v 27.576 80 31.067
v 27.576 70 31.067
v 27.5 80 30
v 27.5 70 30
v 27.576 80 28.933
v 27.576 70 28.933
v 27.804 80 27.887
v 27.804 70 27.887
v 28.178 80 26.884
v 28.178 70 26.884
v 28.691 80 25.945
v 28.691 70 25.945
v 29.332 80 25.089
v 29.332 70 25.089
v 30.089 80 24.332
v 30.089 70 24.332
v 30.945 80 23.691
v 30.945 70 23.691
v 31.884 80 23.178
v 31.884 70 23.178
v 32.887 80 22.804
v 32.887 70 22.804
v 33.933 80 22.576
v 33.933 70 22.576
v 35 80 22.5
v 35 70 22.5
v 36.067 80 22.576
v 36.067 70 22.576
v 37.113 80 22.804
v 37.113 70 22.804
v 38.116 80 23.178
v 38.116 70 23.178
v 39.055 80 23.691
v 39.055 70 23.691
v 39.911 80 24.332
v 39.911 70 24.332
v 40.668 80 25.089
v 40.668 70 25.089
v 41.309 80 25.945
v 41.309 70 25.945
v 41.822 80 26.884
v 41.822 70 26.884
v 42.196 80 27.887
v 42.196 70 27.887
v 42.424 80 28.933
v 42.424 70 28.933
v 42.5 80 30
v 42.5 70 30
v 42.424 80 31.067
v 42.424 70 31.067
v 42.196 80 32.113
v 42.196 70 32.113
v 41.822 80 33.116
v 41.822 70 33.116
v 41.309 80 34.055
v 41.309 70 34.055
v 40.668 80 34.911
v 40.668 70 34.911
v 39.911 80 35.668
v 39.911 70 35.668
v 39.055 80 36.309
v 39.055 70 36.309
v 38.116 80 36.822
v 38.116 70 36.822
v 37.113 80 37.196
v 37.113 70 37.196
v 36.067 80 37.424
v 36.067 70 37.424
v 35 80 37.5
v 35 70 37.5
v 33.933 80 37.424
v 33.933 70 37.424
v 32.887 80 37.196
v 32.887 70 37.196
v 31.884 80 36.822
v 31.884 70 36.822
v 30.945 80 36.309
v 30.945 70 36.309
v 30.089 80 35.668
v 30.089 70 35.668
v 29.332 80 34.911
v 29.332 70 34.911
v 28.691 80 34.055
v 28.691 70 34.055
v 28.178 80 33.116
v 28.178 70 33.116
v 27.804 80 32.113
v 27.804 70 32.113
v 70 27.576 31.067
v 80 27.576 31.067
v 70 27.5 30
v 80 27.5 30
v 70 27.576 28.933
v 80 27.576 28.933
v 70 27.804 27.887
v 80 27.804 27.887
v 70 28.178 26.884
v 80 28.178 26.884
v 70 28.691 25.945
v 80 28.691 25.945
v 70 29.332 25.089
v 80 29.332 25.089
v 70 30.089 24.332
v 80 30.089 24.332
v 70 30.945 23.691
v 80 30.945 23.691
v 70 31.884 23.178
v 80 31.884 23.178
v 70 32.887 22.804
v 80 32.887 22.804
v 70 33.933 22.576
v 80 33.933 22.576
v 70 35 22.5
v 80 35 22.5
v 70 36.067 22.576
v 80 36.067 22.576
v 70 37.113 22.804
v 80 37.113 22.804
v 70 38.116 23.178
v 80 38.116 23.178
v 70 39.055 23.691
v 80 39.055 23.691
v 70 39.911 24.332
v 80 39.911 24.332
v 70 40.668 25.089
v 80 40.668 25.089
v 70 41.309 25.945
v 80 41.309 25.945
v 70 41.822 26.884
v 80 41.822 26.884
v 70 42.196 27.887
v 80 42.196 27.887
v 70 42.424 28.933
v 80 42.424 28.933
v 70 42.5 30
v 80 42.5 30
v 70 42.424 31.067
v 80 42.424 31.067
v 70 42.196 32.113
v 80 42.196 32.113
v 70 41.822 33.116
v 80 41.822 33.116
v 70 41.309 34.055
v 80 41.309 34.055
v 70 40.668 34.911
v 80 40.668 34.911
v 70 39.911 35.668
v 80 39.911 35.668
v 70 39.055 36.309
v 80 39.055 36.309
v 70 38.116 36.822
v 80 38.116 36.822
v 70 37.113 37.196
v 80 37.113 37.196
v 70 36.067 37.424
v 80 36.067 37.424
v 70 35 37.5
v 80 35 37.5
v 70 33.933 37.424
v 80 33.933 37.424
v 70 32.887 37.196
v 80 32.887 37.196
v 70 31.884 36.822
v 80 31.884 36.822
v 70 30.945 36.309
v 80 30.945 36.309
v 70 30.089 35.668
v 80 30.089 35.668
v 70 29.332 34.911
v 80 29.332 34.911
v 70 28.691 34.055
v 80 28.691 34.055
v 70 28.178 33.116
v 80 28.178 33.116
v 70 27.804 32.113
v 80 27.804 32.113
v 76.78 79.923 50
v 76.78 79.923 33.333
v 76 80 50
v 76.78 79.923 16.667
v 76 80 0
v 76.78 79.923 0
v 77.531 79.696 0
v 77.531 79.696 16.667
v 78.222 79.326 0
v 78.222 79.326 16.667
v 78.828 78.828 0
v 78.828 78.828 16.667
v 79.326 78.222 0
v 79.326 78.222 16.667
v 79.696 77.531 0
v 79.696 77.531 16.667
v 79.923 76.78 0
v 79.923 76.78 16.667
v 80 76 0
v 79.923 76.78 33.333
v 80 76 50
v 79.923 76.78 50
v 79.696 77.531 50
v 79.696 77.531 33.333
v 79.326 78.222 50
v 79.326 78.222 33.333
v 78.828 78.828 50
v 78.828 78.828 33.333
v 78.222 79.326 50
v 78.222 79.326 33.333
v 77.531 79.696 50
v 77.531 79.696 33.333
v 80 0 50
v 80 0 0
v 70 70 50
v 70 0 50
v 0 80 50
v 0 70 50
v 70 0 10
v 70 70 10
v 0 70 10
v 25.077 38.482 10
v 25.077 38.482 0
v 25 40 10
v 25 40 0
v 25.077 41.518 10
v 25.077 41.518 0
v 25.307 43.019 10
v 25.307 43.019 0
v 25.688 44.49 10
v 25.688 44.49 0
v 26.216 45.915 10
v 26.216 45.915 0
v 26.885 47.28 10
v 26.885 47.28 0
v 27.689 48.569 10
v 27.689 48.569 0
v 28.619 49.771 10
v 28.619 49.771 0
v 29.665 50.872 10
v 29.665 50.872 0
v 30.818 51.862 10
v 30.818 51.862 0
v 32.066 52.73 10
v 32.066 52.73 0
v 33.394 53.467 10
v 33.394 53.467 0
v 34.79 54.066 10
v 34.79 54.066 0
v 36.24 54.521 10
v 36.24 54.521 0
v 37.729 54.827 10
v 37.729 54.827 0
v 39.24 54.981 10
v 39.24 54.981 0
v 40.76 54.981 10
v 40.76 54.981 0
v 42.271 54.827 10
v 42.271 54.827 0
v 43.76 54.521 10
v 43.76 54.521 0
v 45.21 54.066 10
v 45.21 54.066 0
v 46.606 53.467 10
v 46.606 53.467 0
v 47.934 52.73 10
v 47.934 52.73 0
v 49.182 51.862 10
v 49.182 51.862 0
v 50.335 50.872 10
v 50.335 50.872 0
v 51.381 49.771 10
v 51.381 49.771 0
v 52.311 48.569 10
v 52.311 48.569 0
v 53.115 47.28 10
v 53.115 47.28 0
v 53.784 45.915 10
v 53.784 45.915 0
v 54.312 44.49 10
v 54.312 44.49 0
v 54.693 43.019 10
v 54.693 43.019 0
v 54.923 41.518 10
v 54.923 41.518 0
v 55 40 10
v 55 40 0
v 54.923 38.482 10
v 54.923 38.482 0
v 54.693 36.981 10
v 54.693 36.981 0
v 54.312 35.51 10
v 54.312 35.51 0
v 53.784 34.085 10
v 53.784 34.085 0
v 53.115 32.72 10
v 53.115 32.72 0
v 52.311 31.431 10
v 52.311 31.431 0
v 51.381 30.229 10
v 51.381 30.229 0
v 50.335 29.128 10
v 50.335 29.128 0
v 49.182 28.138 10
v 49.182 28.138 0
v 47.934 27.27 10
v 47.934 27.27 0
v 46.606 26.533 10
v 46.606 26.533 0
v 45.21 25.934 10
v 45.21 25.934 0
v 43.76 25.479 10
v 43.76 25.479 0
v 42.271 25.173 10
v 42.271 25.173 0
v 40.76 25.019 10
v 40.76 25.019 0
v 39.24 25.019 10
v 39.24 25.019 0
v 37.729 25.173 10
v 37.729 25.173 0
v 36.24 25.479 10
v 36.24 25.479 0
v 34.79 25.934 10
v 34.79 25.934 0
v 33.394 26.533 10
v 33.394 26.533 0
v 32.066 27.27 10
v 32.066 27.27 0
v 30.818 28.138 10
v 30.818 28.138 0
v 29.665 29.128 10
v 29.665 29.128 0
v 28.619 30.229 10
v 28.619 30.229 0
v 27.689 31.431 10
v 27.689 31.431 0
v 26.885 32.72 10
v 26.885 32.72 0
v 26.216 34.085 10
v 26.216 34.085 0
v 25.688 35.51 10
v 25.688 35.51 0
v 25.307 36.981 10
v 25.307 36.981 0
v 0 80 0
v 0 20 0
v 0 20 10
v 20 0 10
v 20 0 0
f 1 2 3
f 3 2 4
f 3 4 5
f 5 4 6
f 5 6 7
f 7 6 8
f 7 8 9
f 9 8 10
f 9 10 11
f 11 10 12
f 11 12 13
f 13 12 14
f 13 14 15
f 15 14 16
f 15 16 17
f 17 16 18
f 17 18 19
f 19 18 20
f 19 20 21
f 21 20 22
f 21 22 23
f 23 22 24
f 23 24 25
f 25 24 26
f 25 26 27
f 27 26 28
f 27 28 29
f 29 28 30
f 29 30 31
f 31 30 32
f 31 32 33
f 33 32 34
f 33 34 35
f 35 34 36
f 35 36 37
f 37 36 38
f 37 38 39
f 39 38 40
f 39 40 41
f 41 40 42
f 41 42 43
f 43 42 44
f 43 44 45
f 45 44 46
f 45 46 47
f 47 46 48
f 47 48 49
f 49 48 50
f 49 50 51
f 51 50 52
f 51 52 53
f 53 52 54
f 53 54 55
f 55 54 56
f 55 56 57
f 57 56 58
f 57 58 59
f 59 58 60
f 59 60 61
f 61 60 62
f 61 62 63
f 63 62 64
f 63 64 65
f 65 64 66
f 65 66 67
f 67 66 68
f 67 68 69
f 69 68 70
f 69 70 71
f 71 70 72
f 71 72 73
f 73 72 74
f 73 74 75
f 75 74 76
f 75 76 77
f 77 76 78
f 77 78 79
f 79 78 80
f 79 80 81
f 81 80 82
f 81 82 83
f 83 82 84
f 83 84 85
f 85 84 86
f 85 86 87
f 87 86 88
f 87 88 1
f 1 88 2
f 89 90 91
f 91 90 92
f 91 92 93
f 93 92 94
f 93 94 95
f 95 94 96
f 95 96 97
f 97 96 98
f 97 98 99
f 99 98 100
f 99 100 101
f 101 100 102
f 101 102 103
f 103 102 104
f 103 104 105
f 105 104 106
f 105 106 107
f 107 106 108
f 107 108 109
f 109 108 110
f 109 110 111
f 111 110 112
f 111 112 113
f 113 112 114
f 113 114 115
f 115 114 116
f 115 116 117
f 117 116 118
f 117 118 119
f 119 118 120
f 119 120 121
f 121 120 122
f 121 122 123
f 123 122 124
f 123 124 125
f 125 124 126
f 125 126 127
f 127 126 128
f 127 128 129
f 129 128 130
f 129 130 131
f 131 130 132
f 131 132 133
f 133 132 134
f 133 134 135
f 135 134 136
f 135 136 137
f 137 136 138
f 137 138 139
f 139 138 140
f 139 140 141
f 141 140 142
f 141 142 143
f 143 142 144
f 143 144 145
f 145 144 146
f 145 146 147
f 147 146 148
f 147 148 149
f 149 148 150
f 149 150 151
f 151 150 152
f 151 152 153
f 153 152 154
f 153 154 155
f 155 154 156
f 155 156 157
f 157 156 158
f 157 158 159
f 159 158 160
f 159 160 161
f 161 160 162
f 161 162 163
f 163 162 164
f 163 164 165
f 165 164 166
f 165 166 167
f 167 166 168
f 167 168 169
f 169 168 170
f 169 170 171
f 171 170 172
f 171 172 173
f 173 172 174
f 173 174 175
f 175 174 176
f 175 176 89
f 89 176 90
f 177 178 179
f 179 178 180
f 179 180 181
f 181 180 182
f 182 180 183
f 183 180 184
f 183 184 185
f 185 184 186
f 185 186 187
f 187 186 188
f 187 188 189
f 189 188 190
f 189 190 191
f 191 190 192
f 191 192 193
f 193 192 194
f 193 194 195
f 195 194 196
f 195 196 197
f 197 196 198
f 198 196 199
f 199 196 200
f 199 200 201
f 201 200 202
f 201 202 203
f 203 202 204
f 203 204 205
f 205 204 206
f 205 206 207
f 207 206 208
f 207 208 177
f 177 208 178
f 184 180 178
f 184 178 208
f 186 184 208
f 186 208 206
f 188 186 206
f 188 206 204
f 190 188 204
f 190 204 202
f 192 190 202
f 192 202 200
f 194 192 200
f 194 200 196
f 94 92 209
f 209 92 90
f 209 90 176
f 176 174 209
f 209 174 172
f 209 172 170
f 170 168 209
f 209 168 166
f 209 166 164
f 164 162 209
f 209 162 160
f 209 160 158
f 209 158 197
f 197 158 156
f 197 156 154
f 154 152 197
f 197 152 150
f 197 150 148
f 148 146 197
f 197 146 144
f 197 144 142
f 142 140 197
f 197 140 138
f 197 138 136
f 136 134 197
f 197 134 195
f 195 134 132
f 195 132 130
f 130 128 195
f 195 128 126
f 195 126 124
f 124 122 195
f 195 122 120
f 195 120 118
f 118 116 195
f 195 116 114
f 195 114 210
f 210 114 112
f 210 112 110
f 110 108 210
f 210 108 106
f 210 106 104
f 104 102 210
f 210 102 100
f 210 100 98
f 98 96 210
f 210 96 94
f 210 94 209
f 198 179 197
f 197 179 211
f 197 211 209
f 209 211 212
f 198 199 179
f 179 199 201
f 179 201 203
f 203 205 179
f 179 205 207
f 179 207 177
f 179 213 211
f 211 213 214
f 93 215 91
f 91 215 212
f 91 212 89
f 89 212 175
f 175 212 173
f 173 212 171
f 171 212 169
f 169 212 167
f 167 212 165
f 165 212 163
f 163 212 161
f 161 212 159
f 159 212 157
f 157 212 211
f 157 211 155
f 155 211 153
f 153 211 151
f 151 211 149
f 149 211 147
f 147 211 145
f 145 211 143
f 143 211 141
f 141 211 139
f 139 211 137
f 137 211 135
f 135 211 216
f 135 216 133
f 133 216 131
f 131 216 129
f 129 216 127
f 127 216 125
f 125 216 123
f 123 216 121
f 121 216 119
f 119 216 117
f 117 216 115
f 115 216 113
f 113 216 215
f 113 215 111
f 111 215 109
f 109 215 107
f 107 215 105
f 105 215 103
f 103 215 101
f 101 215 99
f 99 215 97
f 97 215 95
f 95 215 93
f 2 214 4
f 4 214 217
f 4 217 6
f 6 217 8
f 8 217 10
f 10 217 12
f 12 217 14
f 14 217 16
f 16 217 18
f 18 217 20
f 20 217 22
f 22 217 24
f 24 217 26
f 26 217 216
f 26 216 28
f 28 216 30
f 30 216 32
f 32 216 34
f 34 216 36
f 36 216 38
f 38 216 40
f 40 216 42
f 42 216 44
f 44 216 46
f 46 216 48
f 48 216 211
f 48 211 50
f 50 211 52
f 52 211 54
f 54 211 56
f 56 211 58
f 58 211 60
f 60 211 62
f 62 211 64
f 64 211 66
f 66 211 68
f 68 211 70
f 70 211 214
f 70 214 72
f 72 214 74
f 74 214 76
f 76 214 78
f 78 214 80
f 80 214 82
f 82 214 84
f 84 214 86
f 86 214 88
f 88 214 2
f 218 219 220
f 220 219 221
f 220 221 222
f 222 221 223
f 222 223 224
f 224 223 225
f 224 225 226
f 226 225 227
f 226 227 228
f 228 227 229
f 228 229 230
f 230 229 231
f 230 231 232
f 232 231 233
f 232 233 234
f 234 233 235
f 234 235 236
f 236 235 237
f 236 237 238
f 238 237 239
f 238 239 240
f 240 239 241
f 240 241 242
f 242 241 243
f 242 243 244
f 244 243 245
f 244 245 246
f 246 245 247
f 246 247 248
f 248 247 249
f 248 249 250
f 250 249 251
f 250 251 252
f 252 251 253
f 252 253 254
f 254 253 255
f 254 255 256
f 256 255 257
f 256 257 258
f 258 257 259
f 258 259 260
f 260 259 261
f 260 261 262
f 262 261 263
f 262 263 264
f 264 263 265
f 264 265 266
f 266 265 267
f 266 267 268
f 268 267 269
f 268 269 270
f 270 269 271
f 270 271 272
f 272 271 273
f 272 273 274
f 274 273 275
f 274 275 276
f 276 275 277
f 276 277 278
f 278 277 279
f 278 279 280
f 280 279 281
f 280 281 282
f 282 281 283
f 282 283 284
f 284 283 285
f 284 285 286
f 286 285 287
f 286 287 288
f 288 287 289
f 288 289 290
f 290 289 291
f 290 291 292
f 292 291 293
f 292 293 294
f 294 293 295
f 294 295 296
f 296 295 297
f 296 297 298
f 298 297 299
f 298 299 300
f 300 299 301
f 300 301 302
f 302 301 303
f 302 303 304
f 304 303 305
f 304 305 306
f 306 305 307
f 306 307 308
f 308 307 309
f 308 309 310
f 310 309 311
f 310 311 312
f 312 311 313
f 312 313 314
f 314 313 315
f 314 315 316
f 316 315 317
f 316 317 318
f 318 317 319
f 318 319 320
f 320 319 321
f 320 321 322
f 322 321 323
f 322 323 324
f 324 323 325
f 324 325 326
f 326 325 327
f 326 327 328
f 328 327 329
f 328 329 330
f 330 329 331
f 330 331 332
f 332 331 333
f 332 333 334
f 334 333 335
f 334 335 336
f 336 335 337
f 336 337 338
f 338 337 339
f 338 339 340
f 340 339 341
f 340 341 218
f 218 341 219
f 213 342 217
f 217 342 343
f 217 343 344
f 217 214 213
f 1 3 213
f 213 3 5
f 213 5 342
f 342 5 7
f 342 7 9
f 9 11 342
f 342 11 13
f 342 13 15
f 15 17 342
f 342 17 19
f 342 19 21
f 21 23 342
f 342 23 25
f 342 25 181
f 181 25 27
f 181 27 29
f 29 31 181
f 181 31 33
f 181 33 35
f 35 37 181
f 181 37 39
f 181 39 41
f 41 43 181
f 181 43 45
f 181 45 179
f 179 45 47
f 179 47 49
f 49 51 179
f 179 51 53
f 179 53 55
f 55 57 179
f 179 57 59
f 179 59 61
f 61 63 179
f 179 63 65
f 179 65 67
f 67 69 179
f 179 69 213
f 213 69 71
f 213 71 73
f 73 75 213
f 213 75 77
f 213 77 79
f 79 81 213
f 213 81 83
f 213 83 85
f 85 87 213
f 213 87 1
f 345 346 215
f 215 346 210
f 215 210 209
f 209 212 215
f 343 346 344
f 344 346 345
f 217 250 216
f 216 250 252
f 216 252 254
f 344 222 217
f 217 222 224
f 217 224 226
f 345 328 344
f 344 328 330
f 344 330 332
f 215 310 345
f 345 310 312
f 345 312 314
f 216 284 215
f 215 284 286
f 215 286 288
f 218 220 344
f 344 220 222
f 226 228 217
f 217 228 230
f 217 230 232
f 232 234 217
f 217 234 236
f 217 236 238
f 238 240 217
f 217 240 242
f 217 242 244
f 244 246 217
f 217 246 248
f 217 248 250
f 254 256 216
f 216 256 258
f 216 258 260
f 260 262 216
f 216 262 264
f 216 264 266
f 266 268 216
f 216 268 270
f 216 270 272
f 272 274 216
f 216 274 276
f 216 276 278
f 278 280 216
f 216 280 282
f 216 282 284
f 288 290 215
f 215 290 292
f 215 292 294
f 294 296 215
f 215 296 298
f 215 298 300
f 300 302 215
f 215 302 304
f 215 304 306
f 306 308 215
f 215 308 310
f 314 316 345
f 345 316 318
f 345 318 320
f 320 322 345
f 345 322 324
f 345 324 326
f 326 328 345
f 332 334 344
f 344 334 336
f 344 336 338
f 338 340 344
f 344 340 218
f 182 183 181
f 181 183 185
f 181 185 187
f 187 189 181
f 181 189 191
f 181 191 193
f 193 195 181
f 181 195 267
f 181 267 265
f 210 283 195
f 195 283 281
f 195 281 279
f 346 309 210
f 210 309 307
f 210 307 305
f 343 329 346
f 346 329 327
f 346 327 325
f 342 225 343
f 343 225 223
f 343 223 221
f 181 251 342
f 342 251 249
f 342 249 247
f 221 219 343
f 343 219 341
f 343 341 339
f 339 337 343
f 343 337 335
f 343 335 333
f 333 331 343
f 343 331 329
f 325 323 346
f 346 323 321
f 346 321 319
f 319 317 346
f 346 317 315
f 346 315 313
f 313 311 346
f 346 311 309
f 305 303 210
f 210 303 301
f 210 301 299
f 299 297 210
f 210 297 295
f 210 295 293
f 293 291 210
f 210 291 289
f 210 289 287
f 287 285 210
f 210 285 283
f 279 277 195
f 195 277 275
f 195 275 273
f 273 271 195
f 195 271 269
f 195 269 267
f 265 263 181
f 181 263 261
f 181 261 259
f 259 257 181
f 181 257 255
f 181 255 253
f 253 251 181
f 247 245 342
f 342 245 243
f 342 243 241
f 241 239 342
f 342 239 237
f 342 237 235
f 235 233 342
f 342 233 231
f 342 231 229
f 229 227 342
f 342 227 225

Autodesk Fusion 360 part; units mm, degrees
sketch "Sketch1" plane through (0, 0, 0) normal (0, 0, 1) x (1, 0, 0)
  line L0 (0, 0) -> (80, 0)
  line L1 (80, 0) -> (80, 80)
  line L2 (80, 80) -> (0, 80)
  line L3 (0, 80) -> (0, 0)
  line L4 (0, 20) -> (20, 0)
  circle A0 centre (40, 40) radius 15
  dimension "d1" = 80
  dimension "d2" = 80
  dimension "d3" = 20
  dimension "d4" = 20
  dimension "d5" = 30
  dimension "d6" = 40
  dimension "d7" = 40
extrude "Extrude1" add sketch "Sketch1" along normal blind 10 contours L0 L1 L2 L3 L4
sketch "Sketch2" plane through (0, 0, 10) normal (0, 0, 1) x (-1, 0, 0)
  circle A0 centre (-40, -40) radius 15
  line L0 (0, -20) -> (-20, 0)
  line L1 (-20, 0) -> (-80, 0)
  line L2 (-80, 0) -> (-80, -80)
  line L3 (-80, -80) -> (0, -80)
  line L4 (0, -80) -> (0, -20)
  line L5 (0, -80) -> (-80, -80)
  line L6 (-80, -80) -> (-80, -70)
  line L7 (-80, -70) -> (0, -70)
  line L8 (0, -70) -> (0, -80)
  line L9 (-80, 0) -> (-70, 0)
  line L10 (-70, 0) -> (-70, -80)
  line L11 (-70, -80) -> (-80, -80)
  line L12 (-80, -80) -> (-80, 0)
  dimension "d10" = 10
  dimension "d11" = 10
extrude "Extrude2" add sketch "Sketch2" along normal blind 40 contours L3 L4 L5 L7 L8 L10 | L1 L2 L7 L9 L10 L12 | L2 L3 L5 L6 L7 L10 L11 L12
fillet "Fillet1" radius 4 1 edges at (80, 80, 25)
sketch "Sketch3" plane through (80, 0, 0) normal (1, 0, 0) x (0, 1, 0)
  line L0 (76, 0) -> (76, 50)
  line L1 (76, 50) -> (0, 50)
  line L2 (0, 50) -> (0, 0)
  line L3 (0, 0) -> (76, 0)
  circle A0 centre (35, 30) radius 7.5
  line L4 (0, 10) -> (70, 10)
  dimension "d16" = 15
  dimension "d17" = 35
  dimension "d18" = 20
extrude "Extrude3" cut sketch "Sketch3" against normal blind 10 contours A0
sketch "Sketch5" plane through (0, 70, 0) normal (0, -1, 0) x (1, 0, 0)
  line L0 (0, 10) -> (70, 10)
  line L1 (70, 10) -> (70, 50)
  line L2 (70, 50) -> (0, 50)
  line L3 (0, 50) -> (0, 10)
  circle A0 centre (35, 30) radius 7.5
  dimension "d24" = 15
  dimension "d25" = 35
  dimension "d26" = 20
extrude "Extrude4" cut sketch "Sketch5" against normal blind 10 contours A0
sketch "Sketch6" plane through (0, 0, 10) normal (0, 0, 1) x (-1, 0, 0)
  line L0 (-70, -70) -> (0, -70)
  line L1 (0, -70) -> (0, -20)
  line L2 (0, -20) -> (-20, 0)
  line L3 (-20, 0) -> (-70, 0)
  line L4 (-70, 0) -> (-70, -70)
  circle A0 centre (-40, -40) radius 15
sketch "Sketch4" plane through (0, 70, 0) normal (0, -1, 0) x (1, 0, 0)
  line L0 (0, 10) -> (70, 10)
  line L1 (70, 10) -> (70, 50)
  line L2 (70, 50) -> (0, 50)
  line L3 (0, 50) -> (0, 10)
  circle A0 centre (35, 30) radius 7.5
  dimension "d21" = 15
  dimension "d22" = 35
  dimension "d23" = 20
